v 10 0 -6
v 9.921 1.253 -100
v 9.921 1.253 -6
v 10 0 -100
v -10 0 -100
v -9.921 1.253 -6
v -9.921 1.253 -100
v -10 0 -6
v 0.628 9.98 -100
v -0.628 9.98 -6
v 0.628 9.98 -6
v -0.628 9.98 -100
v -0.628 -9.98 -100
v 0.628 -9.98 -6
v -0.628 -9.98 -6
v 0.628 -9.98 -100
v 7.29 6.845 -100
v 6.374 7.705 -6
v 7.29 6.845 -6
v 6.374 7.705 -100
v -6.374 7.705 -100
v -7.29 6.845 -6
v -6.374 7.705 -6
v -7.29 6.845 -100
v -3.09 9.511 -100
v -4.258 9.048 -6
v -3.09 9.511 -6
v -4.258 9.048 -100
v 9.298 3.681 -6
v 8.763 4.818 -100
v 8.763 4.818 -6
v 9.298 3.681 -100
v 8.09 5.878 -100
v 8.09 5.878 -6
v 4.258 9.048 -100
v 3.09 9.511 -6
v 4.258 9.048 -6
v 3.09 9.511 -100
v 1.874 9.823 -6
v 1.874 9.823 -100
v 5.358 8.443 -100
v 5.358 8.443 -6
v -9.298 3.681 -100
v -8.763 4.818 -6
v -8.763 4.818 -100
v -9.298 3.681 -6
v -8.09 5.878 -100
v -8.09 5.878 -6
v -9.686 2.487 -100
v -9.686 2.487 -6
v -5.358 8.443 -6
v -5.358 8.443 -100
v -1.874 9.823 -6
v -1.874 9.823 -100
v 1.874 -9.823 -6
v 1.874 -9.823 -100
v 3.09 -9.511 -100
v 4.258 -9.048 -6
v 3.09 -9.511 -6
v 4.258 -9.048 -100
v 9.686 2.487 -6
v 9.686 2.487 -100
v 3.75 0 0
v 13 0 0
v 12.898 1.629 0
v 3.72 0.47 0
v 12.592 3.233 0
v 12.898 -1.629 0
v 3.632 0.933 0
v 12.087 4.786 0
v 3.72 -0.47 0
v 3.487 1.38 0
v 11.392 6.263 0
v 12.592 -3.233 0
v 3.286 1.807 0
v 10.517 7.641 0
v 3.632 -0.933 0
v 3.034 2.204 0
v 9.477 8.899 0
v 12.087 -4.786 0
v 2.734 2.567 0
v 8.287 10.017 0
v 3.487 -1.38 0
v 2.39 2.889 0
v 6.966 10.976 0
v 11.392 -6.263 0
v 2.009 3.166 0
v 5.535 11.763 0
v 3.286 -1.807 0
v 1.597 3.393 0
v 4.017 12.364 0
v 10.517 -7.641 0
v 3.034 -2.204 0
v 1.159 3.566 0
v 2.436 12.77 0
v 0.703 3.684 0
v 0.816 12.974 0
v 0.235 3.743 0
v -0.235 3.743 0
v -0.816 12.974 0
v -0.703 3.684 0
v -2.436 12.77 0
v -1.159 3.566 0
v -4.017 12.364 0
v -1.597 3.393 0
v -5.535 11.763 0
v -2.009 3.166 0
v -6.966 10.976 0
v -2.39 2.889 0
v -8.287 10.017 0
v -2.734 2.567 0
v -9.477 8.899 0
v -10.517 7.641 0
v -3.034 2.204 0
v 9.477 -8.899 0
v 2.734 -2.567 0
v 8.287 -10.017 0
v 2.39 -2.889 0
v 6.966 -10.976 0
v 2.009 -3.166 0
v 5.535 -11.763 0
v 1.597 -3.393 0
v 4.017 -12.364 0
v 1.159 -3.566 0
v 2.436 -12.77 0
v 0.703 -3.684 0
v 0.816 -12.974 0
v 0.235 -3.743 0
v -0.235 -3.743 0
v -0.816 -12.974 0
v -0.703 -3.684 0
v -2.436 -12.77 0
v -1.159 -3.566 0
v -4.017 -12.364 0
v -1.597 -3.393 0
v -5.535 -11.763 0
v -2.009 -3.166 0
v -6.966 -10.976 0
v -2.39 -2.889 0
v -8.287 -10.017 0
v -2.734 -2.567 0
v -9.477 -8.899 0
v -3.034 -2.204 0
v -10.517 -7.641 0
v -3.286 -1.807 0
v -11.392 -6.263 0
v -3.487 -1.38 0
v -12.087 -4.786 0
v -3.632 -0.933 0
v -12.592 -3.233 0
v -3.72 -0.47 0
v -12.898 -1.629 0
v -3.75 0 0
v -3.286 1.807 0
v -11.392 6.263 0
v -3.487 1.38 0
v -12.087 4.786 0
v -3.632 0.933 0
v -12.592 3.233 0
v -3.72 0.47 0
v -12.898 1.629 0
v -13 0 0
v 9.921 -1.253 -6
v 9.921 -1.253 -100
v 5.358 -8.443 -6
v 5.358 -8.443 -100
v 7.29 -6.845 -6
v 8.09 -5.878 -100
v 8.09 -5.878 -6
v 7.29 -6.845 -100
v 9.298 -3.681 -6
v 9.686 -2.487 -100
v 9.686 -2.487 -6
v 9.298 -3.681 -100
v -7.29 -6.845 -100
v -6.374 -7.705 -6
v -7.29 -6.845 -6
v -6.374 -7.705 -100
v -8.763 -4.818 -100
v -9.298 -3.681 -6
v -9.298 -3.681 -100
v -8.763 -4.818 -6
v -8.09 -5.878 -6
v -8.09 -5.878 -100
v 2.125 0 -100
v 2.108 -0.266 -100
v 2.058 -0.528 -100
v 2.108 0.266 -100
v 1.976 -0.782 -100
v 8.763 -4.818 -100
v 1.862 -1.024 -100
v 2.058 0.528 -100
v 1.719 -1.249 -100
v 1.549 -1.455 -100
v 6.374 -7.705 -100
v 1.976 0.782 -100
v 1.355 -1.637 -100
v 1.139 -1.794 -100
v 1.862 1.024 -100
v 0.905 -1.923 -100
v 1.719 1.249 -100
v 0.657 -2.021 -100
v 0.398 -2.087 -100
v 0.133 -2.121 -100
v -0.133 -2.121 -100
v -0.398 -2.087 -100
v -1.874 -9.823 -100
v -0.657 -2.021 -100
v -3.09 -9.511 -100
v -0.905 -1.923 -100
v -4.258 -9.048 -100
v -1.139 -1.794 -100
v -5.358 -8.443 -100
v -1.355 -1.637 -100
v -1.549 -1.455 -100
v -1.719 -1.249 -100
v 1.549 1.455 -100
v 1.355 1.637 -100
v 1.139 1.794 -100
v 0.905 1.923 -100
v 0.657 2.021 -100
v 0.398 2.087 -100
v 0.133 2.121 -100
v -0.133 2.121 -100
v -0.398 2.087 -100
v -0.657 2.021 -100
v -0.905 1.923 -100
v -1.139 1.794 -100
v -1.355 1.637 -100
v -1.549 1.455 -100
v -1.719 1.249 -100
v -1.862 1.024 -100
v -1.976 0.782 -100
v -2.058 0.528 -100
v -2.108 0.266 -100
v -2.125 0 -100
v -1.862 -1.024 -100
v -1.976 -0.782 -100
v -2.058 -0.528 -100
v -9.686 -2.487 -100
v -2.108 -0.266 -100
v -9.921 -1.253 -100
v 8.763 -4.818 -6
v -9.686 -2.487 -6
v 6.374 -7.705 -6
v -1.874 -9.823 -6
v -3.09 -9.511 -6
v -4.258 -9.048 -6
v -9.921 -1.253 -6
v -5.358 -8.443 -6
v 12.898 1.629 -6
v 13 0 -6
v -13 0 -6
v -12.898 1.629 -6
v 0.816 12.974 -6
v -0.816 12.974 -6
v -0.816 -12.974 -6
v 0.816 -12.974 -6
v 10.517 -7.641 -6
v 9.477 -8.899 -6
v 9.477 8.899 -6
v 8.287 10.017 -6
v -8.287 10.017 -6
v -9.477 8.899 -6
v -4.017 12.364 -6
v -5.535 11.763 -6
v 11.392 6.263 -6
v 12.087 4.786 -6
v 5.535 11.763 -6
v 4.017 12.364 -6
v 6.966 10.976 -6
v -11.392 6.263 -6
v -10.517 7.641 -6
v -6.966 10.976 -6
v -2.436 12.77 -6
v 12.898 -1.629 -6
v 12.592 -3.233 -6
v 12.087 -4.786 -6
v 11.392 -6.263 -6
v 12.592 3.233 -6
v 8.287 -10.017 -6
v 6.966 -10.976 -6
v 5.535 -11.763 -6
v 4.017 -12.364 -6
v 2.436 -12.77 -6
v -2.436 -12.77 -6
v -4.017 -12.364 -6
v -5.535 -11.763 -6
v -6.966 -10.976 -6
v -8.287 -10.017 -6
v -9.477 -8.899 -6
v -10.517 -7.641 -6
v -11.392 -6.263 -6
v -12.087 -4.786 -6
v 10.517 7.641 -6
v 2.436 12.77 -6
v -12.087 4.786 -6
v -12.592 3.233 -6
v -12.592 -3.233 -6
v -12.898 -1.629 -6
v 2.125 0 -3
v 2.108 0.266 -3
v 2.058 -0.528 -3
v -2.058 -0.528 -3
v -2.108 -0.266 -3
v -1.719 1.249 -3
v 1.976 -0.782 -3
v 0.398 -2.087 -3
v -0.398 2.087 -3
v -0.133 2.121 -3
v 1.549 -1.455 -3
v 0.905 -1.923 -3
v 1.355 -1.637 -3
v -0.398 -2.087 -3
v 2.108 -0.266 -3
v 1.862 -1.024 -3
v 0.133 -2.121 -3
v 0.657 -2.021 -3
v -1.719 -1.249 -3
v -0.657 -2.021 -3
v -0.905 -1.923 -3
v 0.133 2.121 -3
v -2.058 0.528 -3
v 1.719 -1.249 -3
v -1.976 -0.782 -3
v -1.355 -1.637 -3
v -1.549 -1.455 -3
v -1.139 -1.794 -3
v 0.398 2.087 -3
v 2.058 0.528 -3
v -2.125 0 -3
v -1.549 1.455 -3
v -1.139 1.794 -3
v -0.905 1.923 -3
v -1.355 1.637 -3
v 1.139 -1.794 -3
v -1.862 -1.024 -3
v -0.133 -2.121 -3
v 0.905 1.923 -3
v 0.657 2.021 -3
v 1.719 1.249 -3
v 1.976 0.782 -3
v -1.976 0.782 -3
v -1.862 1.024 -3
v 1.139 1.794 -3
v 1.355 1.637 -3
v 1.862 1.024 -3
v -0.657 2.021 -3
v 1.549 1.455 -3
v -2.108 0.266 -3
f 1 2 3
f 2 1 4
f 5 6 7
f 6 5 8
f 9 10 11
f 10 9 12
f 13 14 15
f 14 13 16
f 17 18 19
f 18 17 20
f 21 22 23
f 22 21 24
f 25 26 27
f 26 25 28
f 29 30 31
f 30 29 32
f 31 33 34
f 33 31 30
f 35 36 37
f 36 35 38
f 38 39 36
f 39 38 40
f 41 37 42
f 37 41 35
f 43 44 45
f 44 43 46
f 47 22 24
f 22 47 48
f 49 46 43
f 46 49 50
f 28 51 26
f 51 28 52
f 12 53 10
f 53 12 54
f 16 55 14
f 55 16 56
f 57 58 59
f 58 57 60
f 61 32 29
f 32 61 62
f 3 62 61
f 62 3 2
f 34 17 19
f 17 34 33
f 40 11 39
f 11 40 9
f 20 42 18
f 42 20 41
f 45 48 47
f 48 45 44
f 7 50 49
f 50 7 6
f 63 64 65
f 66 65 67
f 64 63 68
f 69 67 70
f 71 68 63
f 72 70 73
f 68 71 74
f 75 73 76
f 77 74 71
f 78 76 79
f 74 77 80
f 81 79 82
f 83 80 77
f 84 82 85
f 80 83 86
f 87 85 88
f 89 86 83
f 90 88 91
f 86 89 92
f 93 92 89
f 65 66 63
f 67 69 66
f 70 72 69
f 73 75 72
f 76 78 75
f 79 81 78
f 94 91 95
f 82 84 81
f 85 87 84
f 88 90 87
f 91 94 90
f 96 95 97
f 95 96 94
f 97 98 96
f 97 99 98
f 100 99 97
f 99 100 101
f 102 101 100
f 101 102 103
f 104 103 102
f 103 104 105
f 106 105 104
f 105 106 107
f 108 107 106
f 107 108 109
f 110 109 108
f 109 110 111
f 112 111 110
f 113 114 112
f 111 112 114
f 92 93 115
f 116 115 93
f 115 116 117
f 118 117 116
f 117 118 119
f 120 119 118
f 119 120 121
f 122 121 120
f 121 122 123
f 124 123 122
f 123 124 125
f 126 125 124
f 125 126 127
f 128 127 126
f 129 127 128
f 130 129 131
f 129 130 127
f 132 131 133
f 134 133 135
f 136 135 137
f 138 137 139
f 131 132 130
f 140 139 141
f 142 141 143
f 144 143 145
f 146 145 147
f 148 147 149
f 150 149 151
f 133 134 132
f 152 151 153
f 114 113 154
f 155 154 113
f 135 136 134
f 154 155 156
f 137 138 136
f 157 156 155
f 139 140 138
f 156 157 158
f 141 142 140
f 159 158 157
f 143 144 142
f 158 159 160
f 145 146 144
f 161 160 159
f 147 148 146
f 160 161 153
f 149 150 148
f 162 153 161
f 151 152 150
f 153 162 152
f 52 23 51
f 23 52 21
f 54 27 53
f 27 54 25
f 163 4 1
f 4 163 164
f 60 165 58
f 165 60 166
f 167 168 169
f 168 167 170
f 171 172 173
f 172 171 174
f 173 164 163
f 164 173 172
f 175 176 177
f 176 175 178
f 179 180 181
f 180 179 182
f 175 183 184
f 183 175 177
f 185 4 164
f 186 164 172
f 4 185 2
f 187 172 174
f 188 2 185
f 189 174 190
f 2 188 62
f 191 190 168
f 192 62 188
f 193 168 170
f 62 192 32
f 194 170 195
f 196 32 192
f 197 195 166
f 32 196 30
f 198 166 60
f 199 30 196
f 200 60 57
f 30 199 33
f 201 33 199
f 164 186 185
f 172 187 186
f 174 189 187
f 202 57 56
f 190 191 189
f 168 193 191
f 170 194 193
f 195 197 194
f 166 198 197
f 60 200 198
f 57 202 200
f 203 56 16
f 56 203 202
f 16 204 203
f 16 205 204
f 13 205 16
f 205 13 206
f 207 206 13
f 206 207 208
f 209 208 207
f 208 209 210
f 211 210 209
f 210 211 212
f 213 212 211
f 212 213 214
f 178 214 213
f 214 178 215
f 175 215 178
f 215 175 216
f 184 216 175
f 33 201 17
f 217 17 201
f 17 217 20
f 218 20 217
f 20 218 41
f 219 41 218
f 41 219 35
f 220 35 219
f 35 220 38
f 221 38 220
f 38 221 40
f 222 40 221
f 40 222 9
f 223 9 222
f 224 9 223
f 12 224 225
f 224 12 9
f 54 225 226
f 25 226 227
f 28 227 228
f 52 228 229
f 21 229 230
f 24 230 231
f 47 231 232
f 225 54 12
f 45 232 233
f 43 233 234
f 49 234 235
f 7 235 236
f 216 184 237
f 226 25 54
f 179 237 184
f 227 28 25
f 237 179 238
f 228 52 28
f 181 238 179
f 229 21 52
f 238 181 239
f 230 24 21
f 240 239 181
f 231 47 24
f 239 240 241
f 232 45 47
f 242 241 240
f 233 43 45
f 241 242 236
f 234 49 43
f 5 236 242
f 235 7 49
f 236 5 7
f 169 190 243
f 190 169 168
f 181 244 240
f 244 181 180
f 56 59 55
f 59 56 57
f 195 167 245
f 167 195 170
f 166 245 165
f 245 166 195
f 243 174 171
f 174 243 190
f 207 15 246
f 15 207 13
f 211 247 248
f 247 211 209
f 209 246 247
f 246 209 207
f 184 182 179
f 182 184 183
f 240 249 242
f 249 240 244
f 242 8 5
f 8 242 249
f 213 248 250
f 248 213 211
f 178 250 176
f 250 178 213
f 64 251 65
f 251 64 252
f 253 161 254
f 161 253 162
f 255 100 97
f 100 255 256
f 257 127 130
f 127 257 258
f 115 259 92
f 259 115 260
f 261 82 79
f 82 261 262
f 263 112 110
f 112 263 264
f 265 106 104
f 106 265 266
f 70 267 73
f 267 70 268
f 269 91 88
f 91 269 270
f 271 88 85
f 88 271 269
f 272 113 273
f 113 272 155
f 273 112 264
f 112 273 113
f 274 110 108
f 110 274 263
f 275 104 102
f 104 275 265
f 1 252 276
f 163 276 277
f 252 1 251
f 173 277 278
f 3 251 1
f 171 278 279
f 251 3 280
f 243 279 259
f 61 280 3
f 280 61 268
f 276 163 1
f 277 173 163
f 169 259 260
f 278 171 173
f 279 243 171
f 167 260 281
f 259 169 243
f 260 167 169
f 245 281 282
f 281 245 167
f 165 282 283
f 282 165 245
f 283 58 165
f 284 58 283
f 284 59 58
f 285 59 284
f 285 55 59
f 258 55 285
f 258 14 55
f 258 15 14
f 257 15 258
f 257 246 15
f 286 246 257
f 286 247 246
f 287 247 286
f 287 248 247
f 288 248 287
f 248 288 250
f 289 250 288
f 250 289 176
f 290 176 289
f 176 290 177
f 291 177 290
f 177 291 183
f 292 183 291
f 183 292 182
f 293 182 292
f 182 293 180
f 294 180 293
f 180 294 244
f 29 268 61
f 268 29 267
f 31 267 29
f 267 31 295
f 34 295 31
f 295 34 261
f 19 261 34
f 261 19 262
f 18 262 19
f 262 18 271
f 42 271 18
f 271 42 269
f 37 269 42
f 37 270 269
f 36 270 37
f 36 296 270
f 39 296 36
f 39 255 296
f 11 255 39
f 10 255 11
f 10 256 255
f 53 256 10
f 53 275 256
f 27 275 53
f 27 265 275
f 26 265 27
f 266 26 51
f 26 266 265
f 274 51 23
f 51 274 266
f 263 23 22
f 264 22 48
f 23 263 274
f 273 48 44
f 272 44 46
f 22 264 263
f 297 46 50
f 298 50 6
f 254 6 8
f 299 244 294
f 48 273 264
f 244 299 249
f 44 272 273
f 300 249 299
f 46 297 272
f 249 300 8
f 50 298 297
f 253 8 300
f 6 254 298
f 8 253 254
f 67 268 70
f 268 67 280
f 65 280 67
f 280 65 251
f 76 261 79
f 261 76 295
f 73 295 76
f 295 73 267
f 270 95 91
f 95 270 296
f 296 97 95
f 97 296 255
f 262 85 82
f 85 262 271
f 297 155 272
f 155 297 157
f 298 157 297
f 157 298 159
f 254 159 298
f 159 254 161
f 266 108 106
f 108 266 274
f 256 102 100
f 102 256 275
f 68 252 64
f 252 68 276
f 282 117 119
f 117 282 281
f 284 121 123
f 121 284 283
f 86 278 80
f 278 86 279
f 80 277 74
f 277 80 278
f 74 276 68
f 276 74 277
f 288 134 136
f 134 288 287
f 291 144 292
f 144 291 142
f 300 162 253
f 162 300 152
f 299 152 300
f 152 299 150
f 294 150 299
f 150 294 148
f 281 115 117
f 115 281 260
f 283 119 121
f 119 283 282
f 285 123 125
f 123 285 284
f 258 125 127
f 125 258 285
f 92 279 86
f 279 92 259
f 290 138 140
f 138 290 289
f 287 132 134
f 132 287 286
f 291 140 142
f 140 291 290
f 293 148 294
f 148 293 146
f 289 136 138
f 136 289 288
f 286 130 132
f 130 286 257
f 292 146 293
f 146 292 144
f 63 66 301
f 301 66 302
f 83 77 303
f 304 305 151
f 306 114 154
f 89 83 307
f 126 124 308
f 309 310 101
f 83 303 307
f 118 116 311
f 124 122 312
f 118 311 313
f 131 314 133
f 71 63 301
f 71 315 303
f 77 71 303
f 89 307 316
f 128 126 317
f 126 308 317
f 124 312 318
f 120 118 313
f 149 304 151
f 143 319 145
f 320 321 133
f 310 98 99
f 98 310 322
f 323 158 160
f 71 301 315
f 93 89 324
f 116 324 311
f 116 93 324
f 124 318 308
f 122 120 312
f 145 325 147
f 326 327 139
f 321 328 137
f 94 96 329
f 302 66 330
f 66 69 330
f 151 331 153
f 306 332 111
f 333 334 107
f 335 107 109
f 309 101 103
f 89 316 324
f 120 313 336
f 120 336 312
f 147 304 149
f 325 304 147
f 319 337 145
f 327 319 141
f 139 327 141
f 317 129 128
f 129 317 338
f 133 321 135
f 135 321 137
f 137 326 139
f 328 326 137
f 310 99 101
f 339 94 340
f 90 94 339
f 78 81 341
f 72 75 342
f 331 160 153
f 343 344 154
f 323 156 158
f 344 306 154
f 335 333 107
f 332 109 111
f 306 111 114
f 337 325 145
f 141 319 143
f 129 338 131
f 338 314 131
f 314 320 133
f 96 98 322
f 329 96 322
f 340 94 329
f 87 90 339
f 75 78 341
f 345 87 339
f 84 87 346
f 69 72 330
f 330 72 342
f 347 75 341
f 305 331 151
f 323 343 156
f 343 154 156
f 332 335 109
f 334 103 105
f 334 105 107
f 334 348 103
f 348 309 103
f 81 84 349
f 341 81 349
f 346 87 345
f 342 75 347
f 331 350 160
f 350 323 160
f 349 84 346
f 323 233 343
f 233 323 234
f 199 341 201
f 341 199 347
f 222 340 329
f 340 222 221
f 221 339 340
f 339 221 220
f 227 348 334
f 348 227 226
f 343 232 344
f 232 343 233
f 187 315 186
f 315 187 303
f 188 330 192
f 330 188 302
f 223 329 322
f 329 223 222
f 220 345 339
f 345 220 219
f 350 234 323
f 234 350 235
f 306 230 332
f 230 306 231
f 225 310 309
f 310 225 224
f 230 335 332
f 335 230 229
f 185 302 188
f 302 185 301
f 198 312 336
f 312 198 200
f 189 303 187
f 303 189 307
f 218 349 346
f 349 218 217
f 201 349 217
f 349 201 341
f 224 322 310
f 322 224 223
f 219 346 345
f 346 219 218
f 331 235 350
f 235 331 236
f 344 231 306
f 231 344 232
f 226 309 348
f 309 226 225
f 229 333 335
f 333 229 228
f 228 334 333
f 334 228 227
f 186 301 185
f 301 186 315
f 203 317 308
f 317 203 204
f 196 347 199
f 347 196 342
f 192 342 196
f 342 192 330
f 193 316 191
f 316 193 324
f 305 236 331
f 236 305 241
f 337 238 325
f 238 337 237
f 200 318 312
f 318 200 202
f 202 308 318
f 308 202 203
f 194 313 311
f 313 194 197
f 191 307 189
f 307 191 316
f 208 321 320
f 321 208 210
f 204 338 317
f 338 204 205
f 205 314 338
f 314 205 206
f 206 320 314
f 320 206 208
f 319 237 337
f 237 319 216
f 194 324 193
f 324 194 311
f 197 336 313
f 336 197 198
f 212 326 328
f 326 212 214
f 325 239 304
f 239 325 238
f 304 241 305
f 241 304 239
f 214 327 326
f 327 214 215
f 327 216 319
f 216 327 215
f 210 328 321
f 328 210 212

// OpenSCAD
$fn = 50;


difference() {
	union() {
		translate(v = [0, 0, -100.0000000000]) {
			cylinder(h = 100, r = 10.0000000000);
		}
		translate(v = [0, 0, -6.0000000000]) {
			cylinder(h = 6, r = 13.0000000000);
		}
	}
	union() {
		translate(v = [0, 0, 0]) {
			rotate(a = [0, 0, 0]) {
				difference() {
					union() {
						#translate(v = [0, 0, -100.0000000000]) {
							cylinder(h = 100, r = 2.0000000000);
						}
						#translate(v = [0, 0, -3]) {
							cylinder(h = 3, r = 10.0000000000, r1 = 2.1250000000, r2 = 3.7500000000);
						}
						#translate(v = [0, 0, -100.0000000000]) {
							cylinder(h = 100, r = 2.1250000000);
						}
						#translate(v = [0, 0, -100.0000000000]) {
							cylinder(h = 100, r = 2.0000000000);
						}
					}
					union();
				}
			}
		}
	}
}
